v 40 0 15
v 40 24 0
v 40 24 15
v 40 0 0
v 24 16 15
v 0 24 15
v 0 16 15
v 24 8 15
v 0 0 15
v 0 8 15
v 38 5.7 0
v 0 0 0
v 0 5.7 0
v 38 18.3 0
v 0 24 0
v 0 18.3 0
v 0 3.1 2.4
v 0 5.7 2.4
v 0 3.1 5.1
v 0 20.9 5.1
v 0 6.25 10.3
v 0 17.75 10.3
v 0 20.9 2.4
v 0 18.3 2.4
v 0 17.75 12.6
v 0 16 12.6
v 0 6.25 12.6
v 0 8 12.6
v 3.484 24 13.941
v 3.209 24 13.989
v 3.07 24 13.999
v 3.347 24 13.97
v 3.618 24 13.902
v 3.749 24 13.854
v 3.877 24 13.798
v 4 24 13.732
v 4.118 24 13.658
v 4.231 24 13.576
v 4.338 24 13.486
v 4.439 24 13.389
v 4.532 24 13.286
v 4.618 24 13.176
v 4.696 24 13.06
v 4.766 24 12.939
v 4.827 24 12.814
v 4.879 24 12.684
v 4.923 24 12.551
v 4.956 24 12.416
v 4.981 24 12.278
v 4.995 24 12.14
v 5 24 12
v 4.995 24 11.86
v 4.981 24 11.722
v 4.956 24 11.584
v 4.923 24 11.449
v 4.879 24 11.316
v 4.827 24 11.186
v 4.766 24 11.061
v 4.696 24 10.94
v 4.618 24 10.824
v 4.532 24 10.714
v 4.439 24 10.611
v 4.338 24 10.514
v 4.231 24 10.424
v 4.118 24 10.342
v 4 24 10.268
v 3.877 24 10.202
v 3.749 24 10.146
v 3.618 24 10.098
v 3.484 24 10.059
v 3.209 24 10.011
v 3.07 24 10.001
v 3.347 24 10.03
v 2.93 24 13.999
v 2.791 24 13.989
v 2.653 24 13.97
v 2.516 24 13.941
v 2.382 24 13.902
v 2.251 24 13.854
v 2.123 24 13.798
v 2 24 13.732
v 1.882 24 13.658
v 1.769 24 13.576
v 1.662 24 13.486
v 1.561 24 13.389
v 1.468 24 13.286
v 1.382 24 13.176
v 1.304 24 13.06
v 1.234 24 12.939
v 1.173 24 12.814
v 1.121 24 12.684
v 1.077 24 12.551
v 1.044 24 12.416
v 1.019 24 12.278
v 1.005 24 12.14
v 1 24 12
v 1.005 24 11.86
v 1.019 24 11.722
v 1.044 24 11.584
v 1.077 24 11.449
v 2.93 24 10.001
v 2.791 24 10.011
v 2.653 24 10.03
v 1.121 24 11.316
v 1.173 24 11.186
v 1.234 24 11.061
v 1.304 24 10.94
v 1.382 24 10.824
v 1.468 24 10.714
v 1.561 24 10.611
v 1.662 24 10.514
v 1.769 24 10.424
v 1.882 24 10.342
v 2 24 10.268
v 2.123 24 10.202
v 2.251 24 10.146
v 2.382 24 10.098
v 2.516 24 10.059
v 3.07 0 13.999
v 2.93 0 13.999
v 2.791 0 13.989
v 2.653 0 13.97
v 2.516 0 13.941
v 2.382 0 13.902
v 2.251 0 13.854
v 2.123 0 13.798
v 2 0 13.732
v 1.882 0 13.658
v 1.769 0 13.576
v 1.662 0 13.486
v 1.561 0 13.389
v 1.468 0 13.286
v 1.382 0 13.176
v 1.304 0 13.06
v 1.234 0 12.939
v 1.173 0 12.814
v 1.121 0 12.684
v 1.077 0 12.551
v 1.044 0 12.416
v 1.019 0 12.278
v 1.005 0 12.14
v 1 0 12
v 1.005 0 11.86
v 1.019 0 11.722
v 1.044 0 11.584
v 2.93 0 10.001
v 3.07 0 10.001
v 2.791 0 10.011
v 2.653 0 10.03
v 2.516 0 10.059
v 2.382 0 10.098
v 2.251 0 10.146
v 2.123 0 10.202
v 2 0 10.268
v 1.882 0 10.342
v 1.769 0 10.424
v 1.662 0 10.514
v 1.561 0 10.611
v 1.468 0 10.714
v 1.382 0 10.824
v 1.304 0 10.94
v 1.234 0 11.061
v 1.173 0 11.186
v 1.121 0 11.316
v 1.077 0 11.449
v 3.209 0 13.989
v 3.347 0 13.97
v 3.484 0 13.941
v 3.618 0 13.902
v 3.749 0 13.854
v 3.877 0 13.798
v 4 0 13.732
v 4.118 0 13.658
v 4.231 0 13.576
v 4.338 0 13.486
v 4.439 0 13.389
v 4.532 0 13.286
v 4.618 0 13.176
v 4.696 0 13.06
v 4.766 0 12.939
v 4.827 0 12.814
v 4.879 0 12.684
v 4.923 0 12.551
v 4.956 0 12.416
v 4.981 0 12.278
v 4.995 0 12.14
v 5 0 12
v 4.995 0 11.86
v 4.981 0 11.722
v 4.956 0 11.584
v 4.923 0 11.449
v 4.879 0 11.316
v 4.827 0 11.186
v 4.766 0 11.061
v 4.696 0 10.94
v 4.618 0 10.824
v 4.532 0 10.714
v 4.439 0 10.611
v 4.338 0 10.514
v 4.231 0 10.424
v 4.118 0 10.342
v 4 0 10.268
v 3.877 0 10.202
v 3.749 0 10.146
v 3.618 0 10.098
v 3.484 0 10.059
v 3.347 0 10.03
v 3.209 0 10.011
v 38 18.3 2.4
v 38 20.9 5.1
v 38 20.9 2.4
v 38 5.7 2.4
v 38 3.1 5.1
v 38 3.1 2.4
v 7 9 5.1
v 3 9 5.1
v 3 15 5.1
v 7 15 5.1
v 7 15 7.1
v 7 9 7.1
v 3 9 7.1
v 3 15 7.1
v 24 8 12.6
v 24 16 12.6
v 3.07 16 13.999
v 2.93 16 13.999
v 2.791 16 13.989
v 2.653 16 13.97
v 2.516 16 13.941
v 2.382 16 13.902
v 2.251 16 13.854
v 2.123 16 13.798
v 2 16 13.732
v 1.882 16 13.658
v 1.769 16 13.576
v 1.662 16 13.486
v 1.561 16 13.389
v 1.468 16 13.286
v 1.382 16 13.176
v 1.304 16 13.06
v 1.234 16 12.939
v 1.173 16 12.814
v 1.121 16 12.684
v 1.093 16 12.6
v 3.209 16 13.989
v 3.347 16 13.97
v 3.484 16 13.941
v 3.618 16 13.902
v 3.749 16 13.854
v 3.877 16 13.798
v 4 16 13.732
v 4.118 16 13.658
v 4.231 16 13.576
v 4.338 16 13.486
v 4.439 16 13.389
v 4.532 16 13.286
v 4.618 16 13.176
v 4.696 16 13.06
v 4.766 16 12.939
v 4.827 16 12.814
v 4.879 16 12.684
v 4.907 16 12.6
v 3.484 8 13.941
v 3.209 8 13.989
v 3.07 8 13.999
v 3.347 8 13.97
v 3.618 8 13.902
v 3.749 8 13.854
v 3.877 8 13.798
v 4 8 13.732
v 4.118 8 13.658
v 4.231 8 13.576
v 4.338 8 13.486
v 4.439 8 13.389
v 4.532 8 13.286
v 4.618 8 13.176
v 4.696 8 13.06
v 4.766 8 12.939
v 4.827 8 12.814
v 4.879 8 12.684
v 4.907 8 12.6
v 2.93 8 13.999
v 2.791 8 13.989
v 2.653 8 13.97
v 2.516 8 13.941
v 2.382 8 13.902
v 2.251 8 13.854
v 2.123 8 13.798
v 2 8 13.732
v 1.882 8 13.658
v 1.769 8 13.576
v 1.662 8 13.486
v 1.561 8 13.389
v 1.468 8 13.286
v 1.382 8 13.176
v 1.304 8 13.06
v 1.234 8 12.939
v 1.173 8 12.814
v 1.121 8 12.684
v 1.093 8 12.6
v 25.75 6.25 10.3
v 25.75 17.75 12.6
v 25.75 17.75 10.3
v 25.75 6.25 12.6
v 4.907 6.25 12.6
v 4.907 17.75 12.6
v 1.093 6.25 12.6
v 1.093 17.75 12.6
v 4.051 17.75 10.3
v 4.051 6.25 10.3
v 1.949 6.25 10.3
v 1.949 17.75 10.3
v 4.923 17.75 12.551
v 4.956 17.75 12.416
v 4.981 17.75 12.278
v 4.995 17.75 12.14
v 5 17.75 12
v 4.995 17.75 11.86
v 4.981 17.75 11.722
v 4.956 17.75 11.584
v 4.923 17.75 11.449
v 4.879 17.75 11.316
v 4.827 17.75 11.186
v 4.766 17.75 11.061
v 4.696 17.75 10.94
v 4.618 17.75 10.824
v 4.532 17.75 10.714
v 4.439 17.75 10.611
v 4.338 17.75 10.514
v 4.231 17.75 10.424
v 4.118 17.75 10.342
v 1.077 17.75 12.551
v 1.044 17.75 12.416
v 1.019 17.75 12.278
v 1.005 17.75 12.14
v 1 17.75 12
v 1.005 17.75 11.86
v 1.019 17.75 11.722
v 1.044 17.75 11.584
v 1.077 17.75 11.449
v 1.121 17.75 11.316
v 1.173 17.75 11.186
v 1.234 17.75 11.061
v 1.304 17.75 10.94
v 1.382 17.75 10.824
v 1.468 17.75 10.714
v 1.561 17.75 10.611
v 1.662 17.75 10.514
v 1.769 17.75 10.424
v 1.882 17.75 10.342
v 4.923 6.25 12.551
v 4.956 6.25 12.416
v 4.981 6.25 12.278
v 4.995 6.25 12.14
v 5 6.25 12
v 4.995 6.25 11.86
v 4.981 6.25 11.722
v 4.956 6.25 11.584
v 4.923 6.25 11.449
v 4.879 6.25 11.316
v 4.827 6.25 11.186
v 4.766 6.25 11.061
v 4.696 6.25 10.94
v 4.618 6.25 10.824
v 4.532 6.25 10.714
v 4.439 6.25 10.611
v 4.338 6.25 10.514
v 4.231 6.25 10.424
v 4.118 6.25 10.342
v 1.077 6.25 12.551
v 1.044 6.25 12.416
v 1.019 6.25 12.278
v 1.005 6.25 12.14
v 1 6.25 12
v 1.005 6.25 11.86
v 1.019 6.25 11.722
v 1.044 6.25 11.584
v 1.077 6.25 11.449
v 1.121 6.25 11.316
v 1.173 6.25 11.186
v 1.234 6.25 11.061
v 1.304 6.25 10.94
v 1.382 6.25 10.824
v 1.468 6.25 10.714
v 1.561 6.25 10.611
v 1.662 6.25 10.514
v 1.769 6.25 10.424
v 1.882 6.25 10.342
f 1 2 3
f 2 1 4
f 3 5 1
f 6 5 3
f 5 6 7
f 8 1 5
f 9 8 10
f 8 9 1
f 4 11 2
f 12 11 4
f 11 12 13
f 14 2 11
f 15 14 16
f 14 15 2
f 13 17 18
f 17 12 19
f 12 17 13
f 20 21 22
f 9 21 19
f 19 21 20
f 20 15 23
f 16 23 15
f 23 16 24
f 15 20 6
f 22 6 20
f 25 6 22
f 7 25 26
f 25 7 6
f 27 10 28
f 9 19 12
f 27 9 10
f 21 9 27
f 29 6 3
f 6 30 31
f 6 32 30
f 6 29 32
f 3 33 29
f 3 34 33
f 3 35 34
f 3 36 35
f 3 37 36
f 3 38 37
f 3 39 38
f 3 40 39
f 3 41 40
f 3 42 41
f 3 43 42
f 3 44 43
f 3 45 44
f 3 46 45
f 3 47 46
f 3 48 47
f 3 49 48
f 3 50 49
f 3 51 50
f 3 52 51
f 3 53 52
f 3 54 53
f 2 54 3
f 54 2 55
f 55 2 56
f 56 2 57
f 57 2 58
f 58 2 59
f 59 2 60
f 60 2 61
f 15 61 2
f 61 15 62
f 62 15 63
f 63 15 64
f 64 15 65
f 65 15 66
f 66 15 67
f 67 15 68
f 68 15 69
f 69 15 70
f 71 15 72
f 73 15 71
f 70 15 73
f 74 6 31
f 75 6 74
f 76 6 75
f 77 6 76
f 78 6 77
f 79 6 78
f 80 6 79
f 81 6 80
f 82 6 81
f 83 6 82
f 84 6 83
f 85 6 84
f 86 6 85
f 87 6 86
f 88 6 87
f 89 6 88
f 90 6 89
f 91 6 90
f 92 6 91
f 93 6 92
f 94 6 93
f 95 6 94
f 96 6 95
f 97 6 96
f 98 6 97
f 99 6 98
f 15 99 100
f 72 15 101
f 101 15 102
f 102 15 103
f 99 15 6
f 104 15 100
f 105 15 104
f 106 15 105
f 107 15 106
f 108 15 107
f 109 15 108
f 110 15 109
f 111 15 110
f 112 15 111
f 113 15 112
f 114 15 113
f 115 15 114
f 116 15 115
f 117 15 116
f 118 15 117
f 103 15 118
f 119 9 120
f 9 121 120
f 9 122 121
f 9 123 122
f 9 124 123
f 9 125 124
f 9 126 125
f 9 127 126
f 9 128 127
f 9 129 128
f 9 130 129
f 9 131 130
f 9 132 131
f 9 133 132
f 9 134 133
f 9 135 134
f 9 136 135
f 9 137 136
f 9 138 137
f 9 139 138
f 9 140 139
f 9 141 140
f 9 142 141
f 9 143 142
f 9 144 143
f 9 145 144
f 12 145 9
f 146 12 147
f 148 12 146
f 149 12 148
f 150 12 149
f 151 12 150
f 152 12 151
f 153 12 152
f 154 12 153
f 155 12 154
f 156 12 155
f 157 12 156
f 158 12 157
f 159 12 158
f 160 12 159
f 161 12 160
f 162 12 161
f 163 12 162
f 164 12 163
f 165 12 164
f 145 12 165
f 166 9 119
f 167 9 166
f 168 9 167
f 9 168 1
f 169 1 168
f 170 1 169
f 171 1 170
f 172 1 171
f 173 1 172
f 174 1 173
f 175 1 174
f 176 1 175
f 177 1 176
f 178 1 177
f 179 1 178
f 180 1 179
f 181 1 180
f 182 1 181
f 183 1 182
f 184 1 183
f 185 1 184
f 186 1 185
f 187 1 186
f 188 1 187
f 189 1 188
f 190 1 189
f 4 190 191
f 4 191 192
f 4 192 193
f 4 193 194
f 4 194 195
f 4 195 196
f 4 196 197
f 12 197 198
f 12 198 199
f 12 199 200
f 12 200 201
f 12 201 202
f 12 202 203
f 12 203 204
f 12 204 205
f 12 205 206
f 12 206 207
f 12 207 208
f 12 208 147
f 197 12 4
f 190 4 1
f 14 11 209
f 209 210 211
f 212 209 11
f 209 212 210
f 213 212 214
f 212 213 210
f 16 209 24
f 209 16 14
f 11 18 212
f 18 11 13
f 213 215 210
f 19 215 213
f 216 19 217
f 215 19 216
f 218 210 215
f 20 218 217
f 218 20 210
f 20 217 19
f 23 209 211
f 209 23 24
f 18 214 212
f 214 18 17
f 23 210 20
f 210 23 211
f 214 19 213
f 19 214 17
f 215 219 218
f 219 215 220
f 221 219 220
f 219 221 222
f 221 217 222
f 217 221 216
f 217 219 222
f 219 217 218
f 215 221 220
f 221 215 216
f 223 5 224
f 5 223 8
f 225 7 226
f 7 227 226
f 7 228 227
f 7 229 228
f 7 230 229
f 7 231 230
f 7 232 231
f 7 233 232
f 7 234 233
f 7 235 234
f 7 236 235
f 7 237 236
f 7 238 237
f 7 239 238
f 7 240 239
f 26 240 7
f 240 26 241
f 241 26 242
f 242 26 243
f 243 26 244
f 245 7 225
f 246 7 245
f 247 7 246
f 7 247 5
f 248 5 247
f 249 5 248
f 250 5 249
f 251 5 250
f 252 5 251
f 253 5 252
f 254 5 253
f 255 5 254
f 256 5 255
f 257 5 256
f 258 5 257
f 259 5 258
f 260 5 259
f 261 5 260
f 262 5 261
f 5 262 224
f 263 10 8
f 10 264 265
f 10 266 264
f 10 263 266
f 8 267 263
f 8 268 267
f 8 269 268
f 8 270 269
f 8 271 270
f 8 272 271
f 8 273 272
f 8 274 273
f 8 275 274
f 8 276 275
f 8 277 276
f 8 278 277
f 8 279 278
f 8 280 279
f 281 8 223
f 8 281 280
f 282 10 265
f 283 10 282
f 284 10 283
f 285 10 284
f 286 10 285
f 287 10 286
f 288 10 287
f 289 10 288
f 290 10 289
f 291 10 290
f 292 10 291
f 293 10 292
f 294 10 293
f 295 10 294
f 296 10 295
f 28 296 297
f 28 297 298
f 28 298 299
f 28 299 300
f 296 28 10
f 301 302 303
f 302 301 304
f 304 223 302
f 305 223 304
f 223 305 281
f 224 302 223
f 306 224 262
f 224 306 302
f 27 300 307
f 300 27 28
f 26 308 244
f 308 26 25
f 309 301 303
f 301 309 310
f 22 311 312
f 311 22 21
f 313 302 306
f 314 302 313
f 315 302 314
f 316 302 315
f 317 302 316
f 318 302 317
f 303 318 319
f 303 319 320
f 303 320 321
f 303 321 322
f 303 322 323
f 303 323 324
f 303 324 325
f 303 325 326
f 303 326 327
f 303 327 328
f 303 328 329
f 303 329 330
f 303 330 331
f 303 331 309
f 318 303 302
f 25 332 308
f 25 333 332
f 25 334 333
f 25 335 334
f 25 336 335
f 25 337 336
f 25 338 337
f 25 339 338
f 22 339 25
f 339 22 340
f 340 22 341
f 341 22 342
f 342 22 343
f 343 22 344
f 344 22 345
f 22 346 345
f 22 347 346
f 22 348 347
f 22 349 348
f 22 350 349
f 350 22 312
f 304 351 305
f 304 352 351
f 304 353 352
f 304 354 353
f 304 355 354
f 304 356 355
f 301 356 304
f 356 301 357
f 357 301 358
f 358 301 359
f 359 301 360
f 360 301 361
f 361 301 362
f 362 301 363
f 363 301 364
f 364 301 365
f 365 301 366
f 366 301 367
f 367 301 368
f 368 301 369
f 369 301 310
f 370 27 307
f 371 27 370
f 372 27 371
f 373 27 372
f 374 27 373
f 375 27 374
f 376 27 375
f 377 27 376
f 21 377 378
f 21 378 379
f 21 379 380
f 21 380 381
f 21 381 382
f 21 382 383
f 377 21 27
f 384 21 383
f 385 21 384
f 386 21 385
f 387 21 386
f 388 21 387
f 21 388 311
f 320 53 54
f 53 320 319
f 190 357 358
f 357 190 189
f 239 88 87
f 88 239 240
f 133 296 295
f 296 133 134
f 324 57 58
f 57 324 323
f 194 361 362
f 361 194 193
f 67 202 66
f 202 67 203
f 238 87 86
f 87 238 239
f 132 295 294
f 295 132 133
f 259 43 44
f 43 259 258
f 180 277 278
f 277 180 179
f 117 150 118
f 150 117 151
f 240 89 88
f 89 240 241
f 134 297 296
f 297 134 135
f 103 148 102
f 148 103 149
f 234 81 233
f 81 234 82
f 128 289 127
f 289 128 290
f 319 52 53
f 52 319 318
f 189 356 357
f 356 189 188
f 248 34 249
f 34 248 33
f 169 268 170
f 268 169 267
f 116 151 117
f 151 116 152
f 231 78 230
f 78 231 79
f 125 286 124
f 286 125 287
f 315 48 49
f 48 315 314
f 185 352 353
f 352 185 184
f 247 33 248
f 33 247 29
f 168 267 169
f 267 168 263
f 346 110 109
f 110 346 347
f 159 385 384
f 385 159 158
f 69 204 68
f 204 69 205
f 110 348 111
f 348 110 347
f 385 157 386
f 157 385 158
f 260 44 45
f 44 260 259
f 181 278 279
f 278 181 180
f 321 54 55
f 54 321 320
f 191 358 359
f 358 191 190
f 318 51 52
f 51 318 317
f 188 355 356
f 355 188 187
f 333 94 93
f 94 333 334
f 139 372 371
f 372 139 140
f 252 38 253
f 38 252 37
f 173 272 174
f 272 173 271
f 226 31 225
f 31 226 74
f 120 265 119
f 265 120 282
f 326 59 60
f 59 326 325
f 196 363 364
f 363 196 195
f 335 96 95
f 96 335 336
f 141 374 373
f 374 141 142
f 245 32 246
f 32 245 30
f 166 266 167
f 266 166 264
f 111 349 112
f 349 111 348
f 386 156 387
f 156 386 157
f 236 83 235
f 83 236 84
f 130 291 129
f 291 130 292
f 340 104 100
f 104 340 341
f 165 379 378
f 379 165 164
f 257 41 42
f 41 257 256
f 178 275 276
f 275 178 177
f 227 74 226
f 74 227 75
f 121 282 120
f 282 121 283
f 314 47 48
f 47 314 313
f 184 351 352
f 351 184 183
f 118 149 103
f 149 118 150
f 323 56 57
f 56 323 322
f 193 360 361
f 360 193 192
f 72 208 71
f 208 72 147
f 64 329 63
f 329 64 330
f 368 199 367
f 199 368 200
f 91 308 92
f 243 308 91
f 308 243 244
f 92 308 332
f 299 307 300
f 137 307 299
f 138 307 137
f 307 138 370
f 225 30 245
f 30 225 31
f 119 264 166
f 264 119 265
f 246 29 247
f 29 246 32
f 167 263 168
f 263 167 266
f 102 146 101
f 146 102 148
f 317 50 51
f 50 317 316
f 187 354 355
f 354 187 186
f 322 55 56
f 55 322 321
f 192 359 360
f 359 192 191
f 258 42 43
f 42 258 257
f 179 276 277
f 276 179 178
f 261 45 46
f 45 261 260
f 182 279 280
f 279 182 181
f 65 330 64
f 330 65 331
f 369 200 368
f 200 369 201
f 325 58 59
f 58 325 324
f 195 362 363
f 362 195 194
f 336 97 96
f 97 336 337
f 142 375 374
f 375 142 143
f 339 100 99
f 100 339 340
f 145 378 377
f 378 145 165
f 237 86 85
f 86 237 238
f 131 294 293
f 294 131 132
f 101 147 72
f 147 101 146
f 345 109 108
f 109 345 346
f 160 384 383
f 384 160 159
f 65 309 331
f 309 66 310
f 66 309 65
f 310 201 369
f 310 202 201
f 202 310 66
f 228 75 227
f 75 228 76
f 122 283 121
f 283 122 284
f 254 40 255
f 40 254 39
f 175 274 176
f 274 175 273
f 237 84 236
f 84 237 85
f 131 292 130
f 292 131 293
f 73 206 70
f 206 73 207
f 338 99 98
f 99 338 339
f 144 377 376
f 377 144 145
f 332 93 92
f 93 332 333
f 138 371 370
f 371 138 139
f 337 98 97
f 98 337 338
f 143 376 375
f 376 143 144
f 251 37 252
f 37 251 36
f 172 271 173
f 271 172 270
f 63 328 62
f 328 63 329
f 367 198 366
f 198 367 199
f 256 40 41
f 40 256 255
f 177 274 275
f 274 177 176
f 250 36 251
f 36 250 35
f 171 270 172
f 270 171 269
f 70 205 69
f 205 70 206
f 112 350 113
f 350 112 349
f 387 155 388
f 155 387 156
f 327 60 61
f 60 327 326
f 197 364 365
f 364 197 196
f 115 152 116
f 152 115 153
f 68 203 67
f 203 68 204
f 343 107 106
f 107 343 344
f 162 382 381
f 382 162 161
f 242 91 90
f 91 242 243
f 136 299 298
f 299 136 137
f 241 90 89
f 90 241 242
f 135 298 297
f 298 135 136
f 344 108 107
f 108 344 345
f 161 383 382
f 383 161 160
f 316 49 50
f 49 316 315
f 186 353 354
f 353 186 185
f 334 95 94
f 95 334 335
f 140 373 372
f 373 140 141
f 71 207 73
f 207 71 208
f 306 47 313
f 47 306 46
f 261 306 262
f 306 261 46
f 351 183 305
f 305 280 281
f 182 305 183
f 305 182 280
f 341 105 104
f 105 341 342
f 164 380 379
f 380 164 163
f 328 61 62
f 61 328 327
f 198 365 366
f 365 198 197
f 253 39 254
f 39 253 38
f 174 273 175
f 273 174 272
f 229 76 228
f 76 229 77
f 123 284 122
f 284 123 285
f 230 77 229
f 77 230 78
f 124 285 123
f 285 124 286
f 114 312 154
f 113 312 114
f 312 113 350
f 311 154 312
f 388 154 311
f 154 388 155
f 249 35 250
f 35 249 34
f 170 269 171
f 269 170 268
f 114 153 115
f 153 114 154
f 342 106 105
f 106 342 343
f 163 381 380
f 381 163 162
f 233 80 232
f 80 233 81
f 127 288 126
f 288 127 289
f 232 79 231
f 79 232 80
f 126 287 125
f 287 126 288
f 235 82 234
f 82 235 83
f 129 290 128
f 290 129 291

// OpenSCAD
$fn=90;

difference(){
	cube([40, 24, 15]);
	#translate([-1, 24/2-12.6/2, -1]){
		cube([39, 12.6, 4.4]);
	}
	#translate([-1, 24/2-17.8/2, 3.4-1]){
		cube([39, 17.8, 2.7]);
	}
	#translate([3, 24/2-6/2, 2.4+2.7-1]){
		cube([4, 6, 3]);
	}
	
	#translate([-1, 24/2-8/2, 15-4.4+1]){
		cube([40/2+8/2+1, 8, 4.4]);
	}
	#translate([-1, 24/2-11.5/2, 15-4.4-2.3+2]){
		cube([40/2+11.5/2+1, 11.5, 2.3]);
	}
	
	#translate([3, -1, 12]){
		rotate([-90, 0, 0]){
			cylinder(h=26, d=4);
		}
	}
}
